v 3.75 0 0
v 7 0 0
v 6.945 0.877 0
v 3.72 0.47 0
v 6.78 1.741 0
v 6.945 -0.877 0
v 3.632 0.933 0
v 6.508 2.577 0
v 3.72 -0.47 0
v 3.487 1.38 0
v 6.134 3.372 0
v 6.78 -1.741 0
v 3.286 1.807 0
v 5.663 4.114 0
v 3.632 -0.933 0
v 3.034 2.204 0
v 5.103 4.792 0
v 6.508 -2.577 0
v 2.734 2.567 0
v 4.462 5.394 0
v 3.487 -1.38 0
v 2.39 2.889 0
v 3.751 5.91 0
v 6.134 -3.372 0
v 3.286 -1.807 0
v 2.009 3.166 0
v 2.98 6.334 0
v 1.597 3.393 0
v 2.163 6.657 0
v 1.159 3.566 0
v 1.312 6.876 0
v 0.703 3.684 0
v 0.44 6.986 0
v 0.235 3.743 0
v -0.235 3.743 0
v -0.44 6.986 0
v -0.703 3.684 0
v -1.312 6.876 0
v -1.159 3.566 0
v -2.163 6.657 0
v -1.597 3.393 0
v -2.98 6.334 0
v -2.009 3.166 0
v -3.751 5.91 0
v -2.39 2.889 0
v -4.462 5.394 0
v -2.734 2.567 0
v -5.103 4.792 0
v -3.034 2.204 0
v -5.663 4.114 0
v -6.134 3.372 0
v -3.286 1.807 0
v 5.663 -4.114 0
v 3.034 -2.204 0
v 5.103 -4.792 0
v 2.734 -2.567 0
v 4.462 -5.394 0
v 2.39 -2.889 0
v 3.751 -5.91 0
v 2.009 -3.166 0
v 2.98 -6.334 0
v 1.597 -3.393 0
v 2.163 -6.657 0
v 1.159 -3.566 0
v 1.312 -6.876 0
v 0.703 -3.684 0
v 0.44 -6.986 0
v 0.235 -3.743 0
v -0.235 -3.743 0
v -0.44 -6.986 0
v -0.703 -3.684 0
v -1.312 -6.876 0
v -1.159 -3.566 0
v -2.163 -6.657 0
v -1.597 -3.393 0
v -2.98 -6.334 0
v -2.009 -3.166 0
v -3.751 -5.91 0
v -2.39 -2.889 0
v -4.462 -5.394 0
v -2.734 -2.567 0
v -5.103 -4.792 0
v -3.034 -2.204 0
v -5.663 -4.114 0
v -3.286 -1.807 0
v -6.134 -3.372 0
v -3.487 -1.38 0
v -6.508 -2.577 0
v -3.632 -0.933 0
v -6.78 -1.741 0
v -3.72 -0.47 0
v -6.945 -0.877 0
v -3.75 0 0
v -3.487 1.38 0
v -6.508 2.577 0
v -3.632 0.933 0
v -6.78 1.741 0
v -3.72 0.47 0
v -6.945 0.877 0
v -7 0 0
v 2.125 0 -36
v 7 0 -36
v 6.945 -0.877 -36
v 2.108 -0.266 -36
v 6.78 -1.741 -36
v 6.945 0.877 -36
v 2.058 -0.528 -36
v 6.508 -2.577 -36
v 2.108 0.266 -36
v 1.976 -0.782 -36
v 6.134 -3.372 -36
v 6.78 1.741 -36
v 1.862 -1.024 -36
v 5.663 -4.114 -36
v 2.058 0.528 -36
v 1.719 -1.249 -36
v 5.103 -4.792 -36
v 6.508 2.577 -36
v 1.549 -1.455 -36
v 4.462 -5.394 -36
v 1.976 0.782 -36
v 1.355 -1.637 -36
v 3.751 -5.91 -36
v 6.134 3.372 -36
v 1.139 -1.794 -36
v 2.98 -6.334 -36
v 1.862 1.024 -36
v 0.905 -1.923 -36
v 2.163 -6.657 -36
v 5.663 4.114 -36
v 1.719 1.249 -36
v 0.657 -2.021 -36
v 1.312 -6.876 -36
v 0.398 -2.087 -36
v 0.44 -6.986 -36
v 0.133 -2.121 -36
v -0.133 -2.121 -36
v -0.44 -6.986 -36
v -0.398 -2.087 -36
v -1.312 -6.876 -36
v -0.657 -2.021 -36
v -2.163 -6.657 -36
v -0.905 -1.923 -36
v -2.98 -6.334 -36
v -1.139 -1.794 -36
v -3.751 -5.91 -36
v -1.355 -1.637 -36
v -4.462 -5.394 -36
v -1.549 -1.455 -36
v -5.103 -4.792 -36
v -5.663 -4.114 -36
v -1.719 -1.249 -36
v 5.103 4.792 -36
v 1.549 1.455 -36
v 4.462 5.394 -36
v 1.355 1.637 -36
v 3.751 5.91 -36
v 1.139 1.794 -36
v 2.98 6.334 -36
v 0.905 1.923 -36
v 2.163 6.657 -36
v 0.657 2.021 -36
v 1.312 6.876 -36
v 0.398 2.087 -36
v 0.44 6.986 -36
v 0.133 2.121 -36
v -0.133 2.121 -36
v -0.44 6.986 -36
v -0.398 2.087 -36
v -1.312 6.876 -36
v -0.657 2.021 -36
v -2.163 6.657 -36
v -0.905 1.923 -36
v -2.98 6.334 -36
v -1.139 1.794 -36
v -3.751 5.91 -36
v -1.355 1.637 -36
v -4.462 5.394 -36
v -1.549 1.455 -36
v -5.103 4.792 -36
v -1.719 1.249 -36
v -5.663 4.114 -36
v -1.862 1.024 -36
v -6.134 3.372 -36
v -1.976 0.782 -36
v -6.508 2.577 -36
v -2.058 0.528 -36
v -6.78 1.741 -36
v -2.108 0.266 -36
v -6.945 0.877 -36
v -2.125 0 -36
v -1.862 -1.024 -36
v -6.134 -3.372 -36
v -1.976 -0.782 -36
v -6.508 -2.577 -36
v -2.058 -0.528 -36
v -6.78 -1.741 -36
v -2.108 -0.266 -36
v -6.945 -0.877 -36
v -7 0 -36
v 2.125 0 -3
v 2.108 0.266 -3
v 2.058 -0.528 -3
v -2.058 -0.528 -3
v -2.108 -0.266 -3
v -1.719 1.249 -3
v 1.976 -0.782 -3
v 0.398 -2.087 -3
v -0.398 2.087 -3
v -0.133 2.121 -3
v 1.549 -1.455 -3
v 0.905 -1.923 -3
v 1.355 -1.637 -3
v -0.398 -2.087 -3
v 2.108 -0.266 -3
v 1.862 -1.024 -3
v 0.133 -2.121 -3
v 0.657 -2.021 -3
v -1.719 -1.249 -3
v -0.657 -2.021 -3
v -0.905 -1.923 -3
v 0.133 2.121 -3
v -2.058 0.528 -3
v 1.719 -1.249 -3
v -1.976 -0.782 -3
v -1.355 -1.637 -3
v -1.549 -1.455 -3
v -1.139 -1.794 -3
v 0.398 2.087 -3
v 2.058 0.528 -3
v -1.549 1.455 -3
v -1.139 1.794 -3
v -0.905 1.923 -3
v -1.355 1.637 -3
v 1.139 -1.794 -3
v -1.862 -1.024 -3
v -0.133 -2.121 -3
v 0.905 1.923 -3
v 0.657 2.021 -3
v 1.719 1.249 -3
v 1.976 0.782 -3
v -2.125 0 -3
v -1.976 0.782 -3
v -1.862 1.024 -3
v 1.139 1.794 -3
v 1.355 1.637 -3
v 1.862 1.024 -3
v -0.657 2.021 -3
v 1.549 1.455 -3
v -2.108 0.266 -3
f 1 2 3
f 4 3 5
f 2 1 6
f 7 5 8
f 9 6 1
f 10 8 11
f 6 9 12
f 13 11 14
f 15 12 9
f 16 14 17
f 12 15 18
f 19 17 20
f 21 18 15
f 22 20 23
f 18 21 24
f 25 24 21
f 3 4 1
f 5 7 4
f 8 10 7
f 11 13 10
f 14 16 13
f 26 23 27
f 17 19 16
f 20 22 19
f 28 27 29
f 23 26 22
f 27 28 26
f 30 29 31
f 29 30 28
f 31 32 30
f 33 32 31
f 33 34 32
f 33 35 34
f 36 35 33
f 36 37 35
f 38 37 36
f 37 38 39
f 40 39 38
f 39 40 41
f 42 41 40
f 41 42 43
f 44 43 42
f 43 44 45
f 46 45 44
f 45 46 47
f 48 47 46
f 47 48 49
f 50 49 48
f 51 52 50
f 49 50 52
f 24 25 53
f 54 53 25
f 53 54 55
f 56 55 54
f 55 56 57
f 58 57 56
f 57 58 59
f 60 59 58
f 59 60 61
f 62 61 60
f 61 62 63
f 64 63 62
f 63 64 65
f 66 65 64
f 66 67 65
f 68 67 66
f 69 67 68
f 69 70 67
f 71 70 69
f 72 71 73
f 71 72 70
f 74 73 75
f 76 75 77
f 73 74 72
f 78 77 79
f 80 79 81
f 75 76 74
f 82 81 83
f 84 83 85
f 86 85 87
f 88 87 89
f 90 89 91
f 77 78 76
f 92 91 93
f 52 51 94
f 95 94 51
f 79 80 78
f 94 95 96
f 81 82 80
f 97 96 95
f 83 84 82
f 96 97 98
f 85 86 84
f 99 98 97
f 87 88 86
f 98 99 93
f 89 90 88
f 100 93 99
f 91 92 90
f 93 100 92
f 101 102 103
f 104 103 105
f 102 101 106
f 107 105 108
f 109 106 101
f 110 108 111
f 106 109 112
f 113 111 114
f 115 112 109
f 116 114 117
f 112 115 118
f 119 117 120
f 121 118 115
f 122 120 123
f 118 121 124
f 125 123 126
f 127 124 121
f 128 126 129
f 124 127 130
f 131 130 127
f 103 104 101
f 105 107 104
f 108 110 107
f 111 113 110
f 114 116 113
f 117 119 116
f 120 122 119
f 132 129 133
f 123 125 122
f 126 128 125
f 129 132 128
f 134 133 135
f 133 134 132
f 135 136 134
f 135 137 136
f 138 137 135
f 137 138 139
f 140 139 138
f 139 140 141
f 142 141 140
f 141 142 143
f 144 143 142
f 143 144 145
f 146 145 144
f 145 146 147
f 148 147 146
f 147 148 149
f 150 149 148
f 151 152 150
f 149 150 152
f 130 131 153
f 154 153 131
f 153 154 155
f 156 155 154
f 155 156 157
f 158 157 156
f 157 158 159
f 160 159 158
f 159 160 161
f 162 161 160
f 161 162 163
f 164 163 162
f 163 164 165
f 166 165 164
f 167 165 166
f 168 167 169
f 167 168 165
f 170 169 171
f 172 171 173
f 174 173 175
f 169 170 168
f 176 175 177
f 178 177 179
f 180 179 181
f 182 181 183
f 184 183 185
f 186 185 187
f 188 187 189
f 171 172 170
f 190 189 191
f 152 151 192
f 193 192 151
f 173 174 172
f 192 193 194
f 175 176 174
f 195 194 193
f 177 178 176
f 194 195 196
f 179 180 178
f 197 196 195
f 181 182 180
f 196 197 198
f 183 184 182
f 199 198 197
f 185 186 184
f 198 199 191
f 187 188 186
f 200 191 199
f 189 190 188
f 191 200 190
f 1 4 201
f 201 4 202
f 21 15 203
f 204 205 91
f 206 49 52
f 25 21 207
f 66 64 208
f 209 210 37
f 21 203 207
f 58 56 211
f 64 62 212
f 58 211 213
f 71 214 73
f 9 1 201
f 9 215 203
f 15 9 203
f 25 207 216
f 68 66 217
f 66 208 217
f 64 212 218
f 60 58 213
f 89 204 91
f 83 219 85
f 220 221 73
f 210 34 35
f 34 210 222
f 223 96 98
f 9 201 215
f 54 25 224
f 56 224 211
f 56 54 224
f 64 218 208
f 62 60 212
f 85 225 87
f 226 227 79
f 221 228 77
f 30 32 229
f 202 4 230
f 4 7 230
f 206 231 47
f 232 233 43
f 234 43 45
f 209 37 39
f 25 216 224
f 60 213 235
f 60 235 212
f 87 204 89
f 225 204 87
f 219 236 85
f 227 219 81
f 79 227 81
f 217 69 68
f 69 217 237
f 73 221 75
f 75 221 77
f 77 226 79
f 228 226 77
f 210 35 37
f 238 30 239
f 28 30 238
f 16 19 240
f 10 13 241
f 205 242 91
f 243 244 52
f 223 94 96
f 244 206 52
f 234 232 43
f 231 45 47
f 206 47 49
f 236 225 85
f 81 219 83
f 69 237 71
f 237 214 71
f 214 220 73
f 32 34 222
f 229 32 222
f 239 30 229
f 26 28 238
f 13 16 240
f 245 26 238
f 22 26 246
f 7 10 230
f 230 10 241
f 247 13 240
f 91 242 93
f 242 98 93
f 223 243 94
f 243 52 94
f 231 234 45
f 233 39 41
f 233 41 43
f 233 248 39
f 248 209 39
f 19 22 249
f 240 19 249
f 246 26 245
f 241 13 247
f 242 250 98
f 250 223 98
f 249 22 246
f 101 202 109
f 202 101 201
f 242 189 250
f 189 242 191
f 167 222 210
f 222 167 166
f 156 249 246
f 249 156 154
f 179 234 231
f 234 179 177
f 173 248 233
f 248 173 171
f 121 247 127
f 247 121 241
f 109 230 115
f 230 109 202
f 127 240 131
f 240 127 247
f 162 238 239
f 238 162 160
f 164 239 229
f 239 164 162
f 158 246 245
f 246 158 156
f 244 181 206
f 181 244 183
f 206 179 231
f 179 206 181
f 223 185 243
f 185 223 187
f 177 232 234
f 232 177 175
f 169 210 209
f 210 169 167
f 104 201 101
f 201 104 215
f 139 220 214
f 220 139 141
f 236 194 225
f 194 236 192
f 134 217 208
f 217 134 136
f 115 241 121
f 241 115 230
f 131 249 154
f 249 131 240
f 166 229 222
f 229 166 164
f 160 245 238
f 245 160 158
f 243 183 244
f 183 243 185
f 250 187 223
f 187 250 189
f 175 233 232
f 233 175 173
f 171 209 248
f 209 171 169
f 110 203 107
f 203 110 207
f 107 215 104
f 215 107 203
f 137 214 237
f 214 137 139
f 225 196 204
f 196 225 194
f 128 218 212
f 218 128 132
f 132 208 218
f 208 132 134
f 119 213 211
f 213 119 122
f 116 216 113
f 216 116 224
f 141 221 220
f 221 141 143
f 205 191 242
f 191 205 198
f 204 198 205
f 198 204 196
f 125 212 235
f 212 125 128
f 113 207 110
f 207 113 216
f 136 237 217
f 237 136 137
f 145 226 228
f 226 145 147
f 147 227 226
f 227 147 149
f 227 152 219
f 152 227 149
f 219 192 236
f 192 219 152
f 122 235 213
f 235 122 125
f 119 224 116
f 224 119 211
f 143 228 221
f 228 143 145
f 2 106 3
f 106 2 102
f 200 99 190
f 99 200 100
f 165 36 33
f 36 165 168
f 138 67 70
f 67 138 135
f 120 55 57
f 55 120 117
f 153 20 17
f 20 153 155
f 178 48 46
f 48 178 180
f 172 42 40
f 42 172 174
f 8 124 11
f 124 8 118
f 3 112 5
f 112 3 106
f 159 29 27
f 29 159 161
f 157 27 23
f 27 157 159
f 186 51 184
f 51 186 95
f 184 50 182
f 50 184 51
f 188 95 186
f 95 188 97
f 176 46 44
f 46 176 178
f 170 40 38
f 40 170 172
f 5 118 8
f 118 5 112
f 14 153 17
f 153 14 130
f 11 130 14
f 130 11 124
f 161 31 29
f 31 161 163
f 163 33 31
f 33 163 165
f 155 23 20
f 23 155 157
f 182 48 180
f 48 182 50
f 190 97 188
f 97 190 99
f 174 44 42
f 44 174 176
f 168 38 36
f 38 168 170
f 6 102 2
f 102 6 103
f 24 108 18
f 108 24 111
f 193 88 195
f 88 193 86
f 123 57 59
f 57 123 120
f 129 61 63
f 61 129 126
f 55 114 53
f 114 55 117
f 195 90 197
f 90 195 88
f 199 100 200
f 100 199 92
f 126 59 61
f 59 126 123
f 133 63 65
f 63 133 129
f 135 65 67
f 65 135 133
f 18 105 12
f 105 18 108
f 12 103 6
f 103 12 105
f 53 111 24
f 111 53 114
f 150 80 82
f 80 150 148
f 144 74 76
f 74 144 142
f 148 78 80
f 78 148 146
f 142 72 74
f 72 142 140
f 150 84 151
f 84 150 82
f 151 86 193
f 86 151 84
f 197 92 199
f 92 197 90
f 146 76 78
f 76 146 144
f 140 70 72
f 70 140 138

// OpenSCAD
$fn = 50;


difference() {
	union() {
		translate(v = [0, 0, -36.0000000000]) {
			cylinder(h = 36, r = 7.0000000000);
		}
		cylinder(h = 0, r = 17.0000000000);
	}
	union() {
		translate(v = [0, 0, 0]) {
			rotate(a = [0, 0, 0]) {
				difference() {
					union() {
						#translate(v = [0, 0, -36.0000000000]) {
							cylinder(h = 36, r = 2.0000000000);
						}
						#translate(v = [0, 0, -3]) {
							cylinder(h = 3, r = 7.0000000000, r1 = 2.1250000000, r2 = 3.7500000000);
						}
						#translate(v = [0, 0, -36.0000000000]) {
							cylinder(h = 36, r = 2.1250000000);
						}
						#translate(v = [0, 0, -36.0000000000]) {
							cylinder(h = 36, r = 2.0000000000);
						}
					}
					union();
				}
			}
		}
	}
}
